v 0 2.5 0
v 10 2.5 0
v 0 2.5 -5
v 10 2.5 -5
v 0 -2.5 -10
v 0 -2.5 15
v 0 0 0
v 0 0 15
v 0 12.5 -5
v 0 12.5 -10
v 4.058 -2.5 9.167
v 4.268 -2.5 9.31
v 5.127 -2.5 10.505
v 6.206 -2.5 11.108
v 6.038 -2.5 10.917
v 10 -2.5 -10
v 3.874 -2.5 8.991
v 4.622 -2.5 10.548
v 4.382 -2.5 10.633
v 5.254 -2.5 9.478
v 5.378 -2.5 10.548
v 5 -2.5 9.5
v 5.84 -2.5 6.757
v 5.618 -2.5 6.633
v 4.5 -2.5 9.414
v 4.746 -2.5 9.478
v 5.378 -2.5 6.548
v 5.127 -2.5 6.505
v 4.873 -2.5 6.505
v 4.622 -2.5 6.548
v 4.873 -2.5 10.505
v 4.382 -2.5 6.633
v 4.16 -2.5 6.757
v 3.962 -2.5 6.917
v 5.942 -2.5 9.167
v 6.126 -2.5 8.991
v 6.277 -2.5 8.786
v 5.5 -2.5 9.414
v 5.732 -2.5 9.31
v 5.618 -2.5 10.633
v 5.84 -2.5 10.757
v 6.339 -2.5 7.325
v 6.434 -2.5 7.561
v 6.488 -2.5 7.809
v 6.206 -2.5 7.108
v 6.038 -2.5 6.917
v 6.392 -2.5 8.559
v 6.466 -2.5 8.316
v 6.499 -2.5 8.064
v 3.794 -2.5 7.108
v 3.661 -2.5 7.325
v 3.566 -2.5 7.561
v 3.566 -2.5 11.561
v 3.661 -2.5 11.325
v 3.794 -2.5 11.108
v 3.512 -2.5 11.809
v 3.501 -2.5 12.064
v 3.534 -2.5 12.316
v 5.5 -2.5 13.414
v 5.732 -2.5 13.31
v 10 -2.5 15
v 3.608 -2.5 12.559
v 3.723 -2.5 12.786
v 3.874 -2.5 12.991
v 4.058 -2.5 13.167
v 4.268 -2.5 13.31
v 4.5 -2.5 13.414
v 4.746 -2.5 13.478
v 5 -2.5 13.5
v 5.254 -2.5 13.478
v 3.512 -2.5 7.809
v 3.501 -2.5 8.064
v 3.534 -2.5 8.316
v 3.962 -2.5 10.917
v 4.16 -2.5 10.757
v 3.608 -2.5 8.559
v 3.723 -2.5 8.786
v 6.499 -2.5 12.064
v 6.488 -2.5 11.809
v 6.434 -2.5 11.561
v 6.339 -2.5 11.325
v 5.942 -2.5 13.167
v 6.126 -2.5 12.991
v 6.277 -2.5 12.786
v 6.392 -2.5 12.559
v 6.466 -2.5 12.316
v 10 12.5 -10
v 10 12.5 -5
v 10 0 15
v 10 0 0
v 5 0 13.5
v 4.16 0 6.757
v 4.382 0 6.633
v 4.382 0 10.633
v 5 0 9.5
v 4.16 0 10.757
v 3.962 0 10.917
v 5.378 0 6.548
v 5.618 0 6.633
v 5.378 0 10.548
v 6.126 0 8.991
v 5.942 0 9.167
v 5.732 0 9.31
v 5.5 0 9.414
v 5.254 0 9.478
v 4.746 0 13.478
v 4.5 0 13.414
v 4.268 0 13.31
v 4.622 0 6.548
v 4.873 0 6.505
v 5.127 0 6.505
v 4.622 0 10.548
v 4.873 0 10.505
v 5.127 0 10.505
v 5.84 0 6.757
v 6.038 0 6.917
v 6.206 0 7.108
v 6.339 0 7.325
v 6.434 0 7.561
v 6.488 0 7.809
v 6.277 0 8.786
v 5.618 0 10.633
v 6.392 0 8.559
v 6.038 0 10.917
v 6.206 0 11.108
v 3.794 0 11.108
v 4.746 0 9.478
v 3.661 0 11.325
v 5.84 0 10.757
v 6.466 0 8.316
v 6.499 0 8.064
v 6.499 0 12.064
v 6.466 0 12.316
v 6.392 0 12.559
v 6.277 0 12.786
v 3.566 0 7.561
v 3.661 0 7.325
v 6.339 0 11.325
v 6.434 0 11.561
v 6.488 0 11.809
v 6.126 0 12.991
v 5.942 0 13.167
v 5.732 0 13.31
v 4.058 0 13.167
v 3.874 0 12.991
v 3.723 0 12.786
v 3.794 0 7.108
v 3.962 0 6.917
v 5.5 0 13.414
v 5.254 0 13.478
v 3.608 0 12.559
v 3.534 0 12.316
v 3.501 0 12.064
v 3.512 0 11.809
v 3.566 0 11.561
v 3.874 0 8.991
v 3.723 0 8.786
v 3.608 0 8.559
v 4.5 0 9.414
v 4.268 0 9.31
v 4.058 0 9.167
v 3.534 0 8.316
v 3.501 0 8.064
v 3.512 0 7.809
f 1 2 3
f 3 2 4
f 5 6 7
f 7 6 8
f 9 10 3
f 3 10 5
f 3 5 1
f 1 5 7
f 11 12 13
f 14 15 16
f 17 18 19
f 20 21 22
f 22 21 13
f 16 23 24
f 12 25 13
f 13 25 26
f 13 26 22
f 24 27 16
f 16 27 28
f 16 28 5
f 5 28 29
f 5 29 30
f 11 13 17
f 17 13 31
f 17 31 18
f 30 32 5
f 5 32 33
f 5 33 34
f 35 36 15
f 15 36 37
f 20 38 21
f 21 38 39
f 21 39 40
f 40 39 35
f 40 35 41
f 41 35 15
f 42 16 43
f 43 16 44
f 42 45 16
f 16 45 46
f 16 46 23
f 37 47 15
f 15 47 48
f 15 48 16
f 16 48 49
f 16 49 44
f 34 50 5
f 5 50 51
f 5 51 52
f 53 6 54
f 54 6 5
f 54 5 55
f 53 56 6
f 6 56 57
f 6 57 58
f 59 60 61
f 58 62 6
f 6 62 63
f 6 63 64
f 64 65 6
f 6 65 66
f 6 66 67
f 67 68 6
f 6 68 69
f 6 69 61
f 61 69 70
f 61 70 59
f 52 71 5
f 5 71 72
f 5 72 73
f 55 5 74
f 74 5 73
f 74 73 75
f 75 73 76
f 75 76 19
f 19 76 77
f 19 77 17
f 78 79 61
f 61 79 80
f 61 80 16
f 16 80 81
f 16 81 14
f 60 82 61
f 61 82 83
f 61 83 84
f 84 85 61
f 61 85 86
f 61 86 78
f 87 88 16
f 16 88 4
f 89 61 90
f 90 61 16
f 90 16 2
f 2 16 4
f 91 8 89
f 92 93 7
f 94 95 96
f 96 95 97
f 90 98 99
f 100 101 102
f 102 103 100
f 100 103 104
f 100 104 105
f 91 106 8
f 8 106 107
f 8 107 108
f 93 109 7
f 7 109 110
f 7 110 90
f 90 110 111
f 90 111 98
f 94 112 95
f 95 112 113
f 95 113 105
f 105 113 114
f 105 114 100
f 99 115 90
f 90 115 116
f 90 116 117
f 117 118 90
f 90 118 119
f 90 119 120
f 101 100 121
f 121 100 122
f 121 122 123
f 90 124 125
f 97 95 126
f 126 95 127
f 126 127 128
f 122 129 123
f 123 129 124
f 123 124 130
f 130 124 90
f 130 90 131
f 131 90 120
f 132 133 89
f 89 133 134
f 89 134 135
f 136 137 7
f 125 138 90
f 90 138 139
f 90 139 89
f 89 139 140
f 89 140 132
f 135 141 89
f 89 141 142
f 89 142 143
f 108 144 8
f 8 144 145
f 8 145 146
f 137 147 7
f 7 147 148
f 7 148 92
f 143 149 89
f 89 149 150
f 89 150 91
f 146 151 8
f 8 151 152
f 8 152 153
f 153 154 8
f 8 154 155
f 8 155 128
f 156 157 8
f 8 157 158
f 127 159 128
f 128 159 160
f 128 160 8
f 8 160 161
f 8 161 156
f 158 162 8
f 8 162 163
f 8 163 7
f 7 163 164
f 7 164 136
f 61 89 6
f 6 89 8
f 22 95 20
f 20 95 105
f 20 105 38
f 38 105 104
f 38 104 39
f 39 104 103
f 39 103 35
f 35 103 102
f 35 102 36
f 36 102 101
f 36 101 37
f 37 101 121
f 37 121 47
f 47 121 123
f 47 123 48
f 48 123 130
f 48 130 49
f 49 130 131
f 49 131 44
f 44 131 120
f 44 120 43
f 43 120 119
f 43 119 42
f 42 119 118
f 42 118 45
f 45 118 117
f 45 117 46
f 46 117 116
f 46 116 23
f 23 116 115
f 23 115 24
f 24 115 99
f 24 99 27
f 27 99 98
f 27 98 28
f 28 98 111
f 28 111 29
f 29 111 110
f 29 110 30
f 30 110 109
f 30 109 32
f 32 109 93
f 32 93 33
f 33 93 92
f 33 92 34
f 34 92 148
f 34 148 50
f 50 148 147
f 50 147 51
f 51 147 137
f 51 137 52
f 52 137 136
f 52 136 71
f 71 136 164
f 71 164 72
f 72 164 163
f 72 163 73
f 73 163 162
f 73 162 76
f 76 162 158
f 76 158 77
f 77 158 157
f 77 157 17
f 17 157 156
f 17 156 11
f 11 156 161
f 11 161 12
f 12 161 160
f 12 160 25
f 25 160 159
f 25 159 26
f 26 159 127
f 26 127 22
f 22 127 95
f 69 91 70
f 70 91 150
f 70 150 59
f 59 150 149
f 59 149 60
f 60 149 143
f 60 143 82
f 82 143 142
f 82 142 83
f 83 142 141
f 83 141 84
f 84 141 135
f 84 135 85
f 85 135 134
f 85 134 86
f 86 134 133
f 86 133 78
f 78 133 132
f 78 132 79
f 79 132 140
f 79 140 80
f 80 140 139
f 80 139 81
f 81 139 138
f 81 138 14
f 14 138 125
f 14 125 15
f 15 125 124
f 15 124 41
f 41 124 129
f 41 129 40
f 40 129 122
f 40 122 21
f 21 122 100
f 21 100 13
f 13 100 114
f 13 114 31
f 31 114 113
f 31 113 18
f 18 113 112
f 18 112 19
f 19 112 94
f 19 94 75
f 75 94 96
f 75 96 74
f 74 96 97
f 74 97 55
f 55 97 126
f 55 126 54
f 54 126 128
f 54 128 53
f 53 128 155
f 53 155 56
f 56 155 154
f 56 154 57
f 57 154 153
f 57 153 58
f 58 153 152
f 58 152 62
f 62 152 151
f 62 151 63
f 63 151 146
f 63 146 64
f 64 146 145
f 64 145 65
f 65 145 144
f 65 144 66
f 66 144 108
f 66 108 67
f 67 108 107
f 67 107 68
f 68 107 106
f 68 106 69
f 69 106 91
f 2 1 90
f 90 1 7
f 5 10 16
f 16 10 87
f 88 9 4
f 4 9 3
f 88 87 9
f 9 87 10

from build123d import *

# Parameters (mm, degrees)
SKETCH1_W           = 10
SKETCH1_H           = 2.5
BOSS_EXTRUDE1_DEPTH = 15
SKETCH2_R           = 1.5
CUT_EXTRUDE1_DEPTH  = 15
SKETCH3_W           = 10
SKETCH3_H           = 5
BOSS_EXTRUDE2_DEPTH = 10
SKETCH4_W           = 10
SKETCH4_H           = 5
BOSS_EXTRUDE3_DEPTH = 10


with BuildPart() as part:
    # Sketch1 → Boss-Extrude1 (new body)
    with BuildSketch(Plane.XY):
        with Locations((5, -1.25)):
            Rectangle(SKETCH1_W, SKETCH1_H)
    extrude(amount=BOSS_EXTRUDE1_DEPTH)

    # Sketch2 → Cut-Extrude1 (cut)
    with BuildSketch(Plane(origin=(0, 0, 0), x_dir=(1, 0, 0), z_dir=(0, 1, 0))):
        with Locations(Location((5, -12, 0), (0, 0, 270))):
            Circle(SKETCH2_R)
        with Locations(Location((5, -8, 0), (0, 0, 270))):
            Circle(SKETCH2_R)
    extrude(amount=-CUT_EXTRUDE1_DEPTH, mode=Mode.SUBTRACT)

    # Sketch3 → Boss-Extrude2 (add)
    with BuildSketch(Plane(origin=(0, 0, 0), x_dir=(-1, 0, 0), z_dir=(0, 0, -1))):
        with Locations((-5, 0)):
            Rectangle(SKETCH3_W, SKETCH3_H)
    extrude(amount=BOSS_EXTRUDE2_DEPTH)

    # Sketch4 → Boss-Extrude3 (add)
    with BuildSketch(Plane(origin=(0, 2.5, 0), x_dir=(1, 0, 0), z_dir=(0, 1, 0))):
        with Locations((5, 7.5)):
            Rectangle(SKETCH4_W, SKETCH4_H)
    extrude(amount=BOSS_EXTRUDE3_DEPTH)


solid = part.part
